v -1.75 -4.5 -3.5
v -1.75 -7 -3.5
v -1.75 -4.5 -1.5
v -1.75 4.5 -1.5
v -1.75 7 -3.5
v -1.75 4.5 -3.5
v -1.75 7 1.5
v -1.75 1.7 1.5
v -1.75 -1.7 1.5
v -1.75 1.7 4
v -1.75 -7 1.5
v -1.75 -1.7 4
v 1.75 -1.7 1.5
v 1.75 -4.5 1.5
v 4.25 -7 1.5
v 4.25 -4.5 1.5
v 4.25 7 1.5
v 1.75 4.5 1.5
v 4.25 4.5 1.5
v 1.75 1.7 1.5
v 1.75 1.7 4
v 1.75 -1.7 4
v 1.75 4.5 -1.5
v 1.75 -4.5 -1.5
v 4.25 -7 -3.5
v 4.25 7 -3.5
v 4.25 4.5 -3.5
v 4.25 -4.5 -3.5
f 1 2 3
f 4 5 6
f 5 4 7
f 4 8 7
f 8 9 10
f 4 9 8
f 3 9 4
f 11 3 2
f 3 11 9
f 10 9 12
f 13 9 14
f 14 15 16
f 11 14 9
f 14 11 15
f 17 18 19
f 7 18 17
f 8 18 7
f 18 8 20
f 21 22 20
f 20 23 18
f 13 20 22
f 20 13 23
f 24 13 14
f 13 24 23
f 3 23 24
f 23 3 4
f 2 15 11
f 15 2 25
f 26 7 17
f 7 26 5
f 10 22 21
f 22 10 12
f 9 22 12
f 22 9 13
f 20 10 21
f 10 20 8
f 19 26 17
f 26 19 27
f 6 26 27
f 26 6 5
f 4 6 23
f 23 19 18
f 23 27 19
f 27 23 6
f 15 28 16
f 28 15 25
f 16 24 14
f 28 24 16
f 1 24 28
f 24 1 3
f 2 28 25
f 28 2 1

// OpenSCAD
union() {
    cube([3.5,14,3], center=true);
    translate([0,0,2.5]) cube([3.5,3.4,3], center=true);
    translate([1.25,5.75,-1]) cube([6,2.5,5],  center=true);
    translate([1.25,-5.75,-1]) cube([6,2.5,5],  center=true);    
}
